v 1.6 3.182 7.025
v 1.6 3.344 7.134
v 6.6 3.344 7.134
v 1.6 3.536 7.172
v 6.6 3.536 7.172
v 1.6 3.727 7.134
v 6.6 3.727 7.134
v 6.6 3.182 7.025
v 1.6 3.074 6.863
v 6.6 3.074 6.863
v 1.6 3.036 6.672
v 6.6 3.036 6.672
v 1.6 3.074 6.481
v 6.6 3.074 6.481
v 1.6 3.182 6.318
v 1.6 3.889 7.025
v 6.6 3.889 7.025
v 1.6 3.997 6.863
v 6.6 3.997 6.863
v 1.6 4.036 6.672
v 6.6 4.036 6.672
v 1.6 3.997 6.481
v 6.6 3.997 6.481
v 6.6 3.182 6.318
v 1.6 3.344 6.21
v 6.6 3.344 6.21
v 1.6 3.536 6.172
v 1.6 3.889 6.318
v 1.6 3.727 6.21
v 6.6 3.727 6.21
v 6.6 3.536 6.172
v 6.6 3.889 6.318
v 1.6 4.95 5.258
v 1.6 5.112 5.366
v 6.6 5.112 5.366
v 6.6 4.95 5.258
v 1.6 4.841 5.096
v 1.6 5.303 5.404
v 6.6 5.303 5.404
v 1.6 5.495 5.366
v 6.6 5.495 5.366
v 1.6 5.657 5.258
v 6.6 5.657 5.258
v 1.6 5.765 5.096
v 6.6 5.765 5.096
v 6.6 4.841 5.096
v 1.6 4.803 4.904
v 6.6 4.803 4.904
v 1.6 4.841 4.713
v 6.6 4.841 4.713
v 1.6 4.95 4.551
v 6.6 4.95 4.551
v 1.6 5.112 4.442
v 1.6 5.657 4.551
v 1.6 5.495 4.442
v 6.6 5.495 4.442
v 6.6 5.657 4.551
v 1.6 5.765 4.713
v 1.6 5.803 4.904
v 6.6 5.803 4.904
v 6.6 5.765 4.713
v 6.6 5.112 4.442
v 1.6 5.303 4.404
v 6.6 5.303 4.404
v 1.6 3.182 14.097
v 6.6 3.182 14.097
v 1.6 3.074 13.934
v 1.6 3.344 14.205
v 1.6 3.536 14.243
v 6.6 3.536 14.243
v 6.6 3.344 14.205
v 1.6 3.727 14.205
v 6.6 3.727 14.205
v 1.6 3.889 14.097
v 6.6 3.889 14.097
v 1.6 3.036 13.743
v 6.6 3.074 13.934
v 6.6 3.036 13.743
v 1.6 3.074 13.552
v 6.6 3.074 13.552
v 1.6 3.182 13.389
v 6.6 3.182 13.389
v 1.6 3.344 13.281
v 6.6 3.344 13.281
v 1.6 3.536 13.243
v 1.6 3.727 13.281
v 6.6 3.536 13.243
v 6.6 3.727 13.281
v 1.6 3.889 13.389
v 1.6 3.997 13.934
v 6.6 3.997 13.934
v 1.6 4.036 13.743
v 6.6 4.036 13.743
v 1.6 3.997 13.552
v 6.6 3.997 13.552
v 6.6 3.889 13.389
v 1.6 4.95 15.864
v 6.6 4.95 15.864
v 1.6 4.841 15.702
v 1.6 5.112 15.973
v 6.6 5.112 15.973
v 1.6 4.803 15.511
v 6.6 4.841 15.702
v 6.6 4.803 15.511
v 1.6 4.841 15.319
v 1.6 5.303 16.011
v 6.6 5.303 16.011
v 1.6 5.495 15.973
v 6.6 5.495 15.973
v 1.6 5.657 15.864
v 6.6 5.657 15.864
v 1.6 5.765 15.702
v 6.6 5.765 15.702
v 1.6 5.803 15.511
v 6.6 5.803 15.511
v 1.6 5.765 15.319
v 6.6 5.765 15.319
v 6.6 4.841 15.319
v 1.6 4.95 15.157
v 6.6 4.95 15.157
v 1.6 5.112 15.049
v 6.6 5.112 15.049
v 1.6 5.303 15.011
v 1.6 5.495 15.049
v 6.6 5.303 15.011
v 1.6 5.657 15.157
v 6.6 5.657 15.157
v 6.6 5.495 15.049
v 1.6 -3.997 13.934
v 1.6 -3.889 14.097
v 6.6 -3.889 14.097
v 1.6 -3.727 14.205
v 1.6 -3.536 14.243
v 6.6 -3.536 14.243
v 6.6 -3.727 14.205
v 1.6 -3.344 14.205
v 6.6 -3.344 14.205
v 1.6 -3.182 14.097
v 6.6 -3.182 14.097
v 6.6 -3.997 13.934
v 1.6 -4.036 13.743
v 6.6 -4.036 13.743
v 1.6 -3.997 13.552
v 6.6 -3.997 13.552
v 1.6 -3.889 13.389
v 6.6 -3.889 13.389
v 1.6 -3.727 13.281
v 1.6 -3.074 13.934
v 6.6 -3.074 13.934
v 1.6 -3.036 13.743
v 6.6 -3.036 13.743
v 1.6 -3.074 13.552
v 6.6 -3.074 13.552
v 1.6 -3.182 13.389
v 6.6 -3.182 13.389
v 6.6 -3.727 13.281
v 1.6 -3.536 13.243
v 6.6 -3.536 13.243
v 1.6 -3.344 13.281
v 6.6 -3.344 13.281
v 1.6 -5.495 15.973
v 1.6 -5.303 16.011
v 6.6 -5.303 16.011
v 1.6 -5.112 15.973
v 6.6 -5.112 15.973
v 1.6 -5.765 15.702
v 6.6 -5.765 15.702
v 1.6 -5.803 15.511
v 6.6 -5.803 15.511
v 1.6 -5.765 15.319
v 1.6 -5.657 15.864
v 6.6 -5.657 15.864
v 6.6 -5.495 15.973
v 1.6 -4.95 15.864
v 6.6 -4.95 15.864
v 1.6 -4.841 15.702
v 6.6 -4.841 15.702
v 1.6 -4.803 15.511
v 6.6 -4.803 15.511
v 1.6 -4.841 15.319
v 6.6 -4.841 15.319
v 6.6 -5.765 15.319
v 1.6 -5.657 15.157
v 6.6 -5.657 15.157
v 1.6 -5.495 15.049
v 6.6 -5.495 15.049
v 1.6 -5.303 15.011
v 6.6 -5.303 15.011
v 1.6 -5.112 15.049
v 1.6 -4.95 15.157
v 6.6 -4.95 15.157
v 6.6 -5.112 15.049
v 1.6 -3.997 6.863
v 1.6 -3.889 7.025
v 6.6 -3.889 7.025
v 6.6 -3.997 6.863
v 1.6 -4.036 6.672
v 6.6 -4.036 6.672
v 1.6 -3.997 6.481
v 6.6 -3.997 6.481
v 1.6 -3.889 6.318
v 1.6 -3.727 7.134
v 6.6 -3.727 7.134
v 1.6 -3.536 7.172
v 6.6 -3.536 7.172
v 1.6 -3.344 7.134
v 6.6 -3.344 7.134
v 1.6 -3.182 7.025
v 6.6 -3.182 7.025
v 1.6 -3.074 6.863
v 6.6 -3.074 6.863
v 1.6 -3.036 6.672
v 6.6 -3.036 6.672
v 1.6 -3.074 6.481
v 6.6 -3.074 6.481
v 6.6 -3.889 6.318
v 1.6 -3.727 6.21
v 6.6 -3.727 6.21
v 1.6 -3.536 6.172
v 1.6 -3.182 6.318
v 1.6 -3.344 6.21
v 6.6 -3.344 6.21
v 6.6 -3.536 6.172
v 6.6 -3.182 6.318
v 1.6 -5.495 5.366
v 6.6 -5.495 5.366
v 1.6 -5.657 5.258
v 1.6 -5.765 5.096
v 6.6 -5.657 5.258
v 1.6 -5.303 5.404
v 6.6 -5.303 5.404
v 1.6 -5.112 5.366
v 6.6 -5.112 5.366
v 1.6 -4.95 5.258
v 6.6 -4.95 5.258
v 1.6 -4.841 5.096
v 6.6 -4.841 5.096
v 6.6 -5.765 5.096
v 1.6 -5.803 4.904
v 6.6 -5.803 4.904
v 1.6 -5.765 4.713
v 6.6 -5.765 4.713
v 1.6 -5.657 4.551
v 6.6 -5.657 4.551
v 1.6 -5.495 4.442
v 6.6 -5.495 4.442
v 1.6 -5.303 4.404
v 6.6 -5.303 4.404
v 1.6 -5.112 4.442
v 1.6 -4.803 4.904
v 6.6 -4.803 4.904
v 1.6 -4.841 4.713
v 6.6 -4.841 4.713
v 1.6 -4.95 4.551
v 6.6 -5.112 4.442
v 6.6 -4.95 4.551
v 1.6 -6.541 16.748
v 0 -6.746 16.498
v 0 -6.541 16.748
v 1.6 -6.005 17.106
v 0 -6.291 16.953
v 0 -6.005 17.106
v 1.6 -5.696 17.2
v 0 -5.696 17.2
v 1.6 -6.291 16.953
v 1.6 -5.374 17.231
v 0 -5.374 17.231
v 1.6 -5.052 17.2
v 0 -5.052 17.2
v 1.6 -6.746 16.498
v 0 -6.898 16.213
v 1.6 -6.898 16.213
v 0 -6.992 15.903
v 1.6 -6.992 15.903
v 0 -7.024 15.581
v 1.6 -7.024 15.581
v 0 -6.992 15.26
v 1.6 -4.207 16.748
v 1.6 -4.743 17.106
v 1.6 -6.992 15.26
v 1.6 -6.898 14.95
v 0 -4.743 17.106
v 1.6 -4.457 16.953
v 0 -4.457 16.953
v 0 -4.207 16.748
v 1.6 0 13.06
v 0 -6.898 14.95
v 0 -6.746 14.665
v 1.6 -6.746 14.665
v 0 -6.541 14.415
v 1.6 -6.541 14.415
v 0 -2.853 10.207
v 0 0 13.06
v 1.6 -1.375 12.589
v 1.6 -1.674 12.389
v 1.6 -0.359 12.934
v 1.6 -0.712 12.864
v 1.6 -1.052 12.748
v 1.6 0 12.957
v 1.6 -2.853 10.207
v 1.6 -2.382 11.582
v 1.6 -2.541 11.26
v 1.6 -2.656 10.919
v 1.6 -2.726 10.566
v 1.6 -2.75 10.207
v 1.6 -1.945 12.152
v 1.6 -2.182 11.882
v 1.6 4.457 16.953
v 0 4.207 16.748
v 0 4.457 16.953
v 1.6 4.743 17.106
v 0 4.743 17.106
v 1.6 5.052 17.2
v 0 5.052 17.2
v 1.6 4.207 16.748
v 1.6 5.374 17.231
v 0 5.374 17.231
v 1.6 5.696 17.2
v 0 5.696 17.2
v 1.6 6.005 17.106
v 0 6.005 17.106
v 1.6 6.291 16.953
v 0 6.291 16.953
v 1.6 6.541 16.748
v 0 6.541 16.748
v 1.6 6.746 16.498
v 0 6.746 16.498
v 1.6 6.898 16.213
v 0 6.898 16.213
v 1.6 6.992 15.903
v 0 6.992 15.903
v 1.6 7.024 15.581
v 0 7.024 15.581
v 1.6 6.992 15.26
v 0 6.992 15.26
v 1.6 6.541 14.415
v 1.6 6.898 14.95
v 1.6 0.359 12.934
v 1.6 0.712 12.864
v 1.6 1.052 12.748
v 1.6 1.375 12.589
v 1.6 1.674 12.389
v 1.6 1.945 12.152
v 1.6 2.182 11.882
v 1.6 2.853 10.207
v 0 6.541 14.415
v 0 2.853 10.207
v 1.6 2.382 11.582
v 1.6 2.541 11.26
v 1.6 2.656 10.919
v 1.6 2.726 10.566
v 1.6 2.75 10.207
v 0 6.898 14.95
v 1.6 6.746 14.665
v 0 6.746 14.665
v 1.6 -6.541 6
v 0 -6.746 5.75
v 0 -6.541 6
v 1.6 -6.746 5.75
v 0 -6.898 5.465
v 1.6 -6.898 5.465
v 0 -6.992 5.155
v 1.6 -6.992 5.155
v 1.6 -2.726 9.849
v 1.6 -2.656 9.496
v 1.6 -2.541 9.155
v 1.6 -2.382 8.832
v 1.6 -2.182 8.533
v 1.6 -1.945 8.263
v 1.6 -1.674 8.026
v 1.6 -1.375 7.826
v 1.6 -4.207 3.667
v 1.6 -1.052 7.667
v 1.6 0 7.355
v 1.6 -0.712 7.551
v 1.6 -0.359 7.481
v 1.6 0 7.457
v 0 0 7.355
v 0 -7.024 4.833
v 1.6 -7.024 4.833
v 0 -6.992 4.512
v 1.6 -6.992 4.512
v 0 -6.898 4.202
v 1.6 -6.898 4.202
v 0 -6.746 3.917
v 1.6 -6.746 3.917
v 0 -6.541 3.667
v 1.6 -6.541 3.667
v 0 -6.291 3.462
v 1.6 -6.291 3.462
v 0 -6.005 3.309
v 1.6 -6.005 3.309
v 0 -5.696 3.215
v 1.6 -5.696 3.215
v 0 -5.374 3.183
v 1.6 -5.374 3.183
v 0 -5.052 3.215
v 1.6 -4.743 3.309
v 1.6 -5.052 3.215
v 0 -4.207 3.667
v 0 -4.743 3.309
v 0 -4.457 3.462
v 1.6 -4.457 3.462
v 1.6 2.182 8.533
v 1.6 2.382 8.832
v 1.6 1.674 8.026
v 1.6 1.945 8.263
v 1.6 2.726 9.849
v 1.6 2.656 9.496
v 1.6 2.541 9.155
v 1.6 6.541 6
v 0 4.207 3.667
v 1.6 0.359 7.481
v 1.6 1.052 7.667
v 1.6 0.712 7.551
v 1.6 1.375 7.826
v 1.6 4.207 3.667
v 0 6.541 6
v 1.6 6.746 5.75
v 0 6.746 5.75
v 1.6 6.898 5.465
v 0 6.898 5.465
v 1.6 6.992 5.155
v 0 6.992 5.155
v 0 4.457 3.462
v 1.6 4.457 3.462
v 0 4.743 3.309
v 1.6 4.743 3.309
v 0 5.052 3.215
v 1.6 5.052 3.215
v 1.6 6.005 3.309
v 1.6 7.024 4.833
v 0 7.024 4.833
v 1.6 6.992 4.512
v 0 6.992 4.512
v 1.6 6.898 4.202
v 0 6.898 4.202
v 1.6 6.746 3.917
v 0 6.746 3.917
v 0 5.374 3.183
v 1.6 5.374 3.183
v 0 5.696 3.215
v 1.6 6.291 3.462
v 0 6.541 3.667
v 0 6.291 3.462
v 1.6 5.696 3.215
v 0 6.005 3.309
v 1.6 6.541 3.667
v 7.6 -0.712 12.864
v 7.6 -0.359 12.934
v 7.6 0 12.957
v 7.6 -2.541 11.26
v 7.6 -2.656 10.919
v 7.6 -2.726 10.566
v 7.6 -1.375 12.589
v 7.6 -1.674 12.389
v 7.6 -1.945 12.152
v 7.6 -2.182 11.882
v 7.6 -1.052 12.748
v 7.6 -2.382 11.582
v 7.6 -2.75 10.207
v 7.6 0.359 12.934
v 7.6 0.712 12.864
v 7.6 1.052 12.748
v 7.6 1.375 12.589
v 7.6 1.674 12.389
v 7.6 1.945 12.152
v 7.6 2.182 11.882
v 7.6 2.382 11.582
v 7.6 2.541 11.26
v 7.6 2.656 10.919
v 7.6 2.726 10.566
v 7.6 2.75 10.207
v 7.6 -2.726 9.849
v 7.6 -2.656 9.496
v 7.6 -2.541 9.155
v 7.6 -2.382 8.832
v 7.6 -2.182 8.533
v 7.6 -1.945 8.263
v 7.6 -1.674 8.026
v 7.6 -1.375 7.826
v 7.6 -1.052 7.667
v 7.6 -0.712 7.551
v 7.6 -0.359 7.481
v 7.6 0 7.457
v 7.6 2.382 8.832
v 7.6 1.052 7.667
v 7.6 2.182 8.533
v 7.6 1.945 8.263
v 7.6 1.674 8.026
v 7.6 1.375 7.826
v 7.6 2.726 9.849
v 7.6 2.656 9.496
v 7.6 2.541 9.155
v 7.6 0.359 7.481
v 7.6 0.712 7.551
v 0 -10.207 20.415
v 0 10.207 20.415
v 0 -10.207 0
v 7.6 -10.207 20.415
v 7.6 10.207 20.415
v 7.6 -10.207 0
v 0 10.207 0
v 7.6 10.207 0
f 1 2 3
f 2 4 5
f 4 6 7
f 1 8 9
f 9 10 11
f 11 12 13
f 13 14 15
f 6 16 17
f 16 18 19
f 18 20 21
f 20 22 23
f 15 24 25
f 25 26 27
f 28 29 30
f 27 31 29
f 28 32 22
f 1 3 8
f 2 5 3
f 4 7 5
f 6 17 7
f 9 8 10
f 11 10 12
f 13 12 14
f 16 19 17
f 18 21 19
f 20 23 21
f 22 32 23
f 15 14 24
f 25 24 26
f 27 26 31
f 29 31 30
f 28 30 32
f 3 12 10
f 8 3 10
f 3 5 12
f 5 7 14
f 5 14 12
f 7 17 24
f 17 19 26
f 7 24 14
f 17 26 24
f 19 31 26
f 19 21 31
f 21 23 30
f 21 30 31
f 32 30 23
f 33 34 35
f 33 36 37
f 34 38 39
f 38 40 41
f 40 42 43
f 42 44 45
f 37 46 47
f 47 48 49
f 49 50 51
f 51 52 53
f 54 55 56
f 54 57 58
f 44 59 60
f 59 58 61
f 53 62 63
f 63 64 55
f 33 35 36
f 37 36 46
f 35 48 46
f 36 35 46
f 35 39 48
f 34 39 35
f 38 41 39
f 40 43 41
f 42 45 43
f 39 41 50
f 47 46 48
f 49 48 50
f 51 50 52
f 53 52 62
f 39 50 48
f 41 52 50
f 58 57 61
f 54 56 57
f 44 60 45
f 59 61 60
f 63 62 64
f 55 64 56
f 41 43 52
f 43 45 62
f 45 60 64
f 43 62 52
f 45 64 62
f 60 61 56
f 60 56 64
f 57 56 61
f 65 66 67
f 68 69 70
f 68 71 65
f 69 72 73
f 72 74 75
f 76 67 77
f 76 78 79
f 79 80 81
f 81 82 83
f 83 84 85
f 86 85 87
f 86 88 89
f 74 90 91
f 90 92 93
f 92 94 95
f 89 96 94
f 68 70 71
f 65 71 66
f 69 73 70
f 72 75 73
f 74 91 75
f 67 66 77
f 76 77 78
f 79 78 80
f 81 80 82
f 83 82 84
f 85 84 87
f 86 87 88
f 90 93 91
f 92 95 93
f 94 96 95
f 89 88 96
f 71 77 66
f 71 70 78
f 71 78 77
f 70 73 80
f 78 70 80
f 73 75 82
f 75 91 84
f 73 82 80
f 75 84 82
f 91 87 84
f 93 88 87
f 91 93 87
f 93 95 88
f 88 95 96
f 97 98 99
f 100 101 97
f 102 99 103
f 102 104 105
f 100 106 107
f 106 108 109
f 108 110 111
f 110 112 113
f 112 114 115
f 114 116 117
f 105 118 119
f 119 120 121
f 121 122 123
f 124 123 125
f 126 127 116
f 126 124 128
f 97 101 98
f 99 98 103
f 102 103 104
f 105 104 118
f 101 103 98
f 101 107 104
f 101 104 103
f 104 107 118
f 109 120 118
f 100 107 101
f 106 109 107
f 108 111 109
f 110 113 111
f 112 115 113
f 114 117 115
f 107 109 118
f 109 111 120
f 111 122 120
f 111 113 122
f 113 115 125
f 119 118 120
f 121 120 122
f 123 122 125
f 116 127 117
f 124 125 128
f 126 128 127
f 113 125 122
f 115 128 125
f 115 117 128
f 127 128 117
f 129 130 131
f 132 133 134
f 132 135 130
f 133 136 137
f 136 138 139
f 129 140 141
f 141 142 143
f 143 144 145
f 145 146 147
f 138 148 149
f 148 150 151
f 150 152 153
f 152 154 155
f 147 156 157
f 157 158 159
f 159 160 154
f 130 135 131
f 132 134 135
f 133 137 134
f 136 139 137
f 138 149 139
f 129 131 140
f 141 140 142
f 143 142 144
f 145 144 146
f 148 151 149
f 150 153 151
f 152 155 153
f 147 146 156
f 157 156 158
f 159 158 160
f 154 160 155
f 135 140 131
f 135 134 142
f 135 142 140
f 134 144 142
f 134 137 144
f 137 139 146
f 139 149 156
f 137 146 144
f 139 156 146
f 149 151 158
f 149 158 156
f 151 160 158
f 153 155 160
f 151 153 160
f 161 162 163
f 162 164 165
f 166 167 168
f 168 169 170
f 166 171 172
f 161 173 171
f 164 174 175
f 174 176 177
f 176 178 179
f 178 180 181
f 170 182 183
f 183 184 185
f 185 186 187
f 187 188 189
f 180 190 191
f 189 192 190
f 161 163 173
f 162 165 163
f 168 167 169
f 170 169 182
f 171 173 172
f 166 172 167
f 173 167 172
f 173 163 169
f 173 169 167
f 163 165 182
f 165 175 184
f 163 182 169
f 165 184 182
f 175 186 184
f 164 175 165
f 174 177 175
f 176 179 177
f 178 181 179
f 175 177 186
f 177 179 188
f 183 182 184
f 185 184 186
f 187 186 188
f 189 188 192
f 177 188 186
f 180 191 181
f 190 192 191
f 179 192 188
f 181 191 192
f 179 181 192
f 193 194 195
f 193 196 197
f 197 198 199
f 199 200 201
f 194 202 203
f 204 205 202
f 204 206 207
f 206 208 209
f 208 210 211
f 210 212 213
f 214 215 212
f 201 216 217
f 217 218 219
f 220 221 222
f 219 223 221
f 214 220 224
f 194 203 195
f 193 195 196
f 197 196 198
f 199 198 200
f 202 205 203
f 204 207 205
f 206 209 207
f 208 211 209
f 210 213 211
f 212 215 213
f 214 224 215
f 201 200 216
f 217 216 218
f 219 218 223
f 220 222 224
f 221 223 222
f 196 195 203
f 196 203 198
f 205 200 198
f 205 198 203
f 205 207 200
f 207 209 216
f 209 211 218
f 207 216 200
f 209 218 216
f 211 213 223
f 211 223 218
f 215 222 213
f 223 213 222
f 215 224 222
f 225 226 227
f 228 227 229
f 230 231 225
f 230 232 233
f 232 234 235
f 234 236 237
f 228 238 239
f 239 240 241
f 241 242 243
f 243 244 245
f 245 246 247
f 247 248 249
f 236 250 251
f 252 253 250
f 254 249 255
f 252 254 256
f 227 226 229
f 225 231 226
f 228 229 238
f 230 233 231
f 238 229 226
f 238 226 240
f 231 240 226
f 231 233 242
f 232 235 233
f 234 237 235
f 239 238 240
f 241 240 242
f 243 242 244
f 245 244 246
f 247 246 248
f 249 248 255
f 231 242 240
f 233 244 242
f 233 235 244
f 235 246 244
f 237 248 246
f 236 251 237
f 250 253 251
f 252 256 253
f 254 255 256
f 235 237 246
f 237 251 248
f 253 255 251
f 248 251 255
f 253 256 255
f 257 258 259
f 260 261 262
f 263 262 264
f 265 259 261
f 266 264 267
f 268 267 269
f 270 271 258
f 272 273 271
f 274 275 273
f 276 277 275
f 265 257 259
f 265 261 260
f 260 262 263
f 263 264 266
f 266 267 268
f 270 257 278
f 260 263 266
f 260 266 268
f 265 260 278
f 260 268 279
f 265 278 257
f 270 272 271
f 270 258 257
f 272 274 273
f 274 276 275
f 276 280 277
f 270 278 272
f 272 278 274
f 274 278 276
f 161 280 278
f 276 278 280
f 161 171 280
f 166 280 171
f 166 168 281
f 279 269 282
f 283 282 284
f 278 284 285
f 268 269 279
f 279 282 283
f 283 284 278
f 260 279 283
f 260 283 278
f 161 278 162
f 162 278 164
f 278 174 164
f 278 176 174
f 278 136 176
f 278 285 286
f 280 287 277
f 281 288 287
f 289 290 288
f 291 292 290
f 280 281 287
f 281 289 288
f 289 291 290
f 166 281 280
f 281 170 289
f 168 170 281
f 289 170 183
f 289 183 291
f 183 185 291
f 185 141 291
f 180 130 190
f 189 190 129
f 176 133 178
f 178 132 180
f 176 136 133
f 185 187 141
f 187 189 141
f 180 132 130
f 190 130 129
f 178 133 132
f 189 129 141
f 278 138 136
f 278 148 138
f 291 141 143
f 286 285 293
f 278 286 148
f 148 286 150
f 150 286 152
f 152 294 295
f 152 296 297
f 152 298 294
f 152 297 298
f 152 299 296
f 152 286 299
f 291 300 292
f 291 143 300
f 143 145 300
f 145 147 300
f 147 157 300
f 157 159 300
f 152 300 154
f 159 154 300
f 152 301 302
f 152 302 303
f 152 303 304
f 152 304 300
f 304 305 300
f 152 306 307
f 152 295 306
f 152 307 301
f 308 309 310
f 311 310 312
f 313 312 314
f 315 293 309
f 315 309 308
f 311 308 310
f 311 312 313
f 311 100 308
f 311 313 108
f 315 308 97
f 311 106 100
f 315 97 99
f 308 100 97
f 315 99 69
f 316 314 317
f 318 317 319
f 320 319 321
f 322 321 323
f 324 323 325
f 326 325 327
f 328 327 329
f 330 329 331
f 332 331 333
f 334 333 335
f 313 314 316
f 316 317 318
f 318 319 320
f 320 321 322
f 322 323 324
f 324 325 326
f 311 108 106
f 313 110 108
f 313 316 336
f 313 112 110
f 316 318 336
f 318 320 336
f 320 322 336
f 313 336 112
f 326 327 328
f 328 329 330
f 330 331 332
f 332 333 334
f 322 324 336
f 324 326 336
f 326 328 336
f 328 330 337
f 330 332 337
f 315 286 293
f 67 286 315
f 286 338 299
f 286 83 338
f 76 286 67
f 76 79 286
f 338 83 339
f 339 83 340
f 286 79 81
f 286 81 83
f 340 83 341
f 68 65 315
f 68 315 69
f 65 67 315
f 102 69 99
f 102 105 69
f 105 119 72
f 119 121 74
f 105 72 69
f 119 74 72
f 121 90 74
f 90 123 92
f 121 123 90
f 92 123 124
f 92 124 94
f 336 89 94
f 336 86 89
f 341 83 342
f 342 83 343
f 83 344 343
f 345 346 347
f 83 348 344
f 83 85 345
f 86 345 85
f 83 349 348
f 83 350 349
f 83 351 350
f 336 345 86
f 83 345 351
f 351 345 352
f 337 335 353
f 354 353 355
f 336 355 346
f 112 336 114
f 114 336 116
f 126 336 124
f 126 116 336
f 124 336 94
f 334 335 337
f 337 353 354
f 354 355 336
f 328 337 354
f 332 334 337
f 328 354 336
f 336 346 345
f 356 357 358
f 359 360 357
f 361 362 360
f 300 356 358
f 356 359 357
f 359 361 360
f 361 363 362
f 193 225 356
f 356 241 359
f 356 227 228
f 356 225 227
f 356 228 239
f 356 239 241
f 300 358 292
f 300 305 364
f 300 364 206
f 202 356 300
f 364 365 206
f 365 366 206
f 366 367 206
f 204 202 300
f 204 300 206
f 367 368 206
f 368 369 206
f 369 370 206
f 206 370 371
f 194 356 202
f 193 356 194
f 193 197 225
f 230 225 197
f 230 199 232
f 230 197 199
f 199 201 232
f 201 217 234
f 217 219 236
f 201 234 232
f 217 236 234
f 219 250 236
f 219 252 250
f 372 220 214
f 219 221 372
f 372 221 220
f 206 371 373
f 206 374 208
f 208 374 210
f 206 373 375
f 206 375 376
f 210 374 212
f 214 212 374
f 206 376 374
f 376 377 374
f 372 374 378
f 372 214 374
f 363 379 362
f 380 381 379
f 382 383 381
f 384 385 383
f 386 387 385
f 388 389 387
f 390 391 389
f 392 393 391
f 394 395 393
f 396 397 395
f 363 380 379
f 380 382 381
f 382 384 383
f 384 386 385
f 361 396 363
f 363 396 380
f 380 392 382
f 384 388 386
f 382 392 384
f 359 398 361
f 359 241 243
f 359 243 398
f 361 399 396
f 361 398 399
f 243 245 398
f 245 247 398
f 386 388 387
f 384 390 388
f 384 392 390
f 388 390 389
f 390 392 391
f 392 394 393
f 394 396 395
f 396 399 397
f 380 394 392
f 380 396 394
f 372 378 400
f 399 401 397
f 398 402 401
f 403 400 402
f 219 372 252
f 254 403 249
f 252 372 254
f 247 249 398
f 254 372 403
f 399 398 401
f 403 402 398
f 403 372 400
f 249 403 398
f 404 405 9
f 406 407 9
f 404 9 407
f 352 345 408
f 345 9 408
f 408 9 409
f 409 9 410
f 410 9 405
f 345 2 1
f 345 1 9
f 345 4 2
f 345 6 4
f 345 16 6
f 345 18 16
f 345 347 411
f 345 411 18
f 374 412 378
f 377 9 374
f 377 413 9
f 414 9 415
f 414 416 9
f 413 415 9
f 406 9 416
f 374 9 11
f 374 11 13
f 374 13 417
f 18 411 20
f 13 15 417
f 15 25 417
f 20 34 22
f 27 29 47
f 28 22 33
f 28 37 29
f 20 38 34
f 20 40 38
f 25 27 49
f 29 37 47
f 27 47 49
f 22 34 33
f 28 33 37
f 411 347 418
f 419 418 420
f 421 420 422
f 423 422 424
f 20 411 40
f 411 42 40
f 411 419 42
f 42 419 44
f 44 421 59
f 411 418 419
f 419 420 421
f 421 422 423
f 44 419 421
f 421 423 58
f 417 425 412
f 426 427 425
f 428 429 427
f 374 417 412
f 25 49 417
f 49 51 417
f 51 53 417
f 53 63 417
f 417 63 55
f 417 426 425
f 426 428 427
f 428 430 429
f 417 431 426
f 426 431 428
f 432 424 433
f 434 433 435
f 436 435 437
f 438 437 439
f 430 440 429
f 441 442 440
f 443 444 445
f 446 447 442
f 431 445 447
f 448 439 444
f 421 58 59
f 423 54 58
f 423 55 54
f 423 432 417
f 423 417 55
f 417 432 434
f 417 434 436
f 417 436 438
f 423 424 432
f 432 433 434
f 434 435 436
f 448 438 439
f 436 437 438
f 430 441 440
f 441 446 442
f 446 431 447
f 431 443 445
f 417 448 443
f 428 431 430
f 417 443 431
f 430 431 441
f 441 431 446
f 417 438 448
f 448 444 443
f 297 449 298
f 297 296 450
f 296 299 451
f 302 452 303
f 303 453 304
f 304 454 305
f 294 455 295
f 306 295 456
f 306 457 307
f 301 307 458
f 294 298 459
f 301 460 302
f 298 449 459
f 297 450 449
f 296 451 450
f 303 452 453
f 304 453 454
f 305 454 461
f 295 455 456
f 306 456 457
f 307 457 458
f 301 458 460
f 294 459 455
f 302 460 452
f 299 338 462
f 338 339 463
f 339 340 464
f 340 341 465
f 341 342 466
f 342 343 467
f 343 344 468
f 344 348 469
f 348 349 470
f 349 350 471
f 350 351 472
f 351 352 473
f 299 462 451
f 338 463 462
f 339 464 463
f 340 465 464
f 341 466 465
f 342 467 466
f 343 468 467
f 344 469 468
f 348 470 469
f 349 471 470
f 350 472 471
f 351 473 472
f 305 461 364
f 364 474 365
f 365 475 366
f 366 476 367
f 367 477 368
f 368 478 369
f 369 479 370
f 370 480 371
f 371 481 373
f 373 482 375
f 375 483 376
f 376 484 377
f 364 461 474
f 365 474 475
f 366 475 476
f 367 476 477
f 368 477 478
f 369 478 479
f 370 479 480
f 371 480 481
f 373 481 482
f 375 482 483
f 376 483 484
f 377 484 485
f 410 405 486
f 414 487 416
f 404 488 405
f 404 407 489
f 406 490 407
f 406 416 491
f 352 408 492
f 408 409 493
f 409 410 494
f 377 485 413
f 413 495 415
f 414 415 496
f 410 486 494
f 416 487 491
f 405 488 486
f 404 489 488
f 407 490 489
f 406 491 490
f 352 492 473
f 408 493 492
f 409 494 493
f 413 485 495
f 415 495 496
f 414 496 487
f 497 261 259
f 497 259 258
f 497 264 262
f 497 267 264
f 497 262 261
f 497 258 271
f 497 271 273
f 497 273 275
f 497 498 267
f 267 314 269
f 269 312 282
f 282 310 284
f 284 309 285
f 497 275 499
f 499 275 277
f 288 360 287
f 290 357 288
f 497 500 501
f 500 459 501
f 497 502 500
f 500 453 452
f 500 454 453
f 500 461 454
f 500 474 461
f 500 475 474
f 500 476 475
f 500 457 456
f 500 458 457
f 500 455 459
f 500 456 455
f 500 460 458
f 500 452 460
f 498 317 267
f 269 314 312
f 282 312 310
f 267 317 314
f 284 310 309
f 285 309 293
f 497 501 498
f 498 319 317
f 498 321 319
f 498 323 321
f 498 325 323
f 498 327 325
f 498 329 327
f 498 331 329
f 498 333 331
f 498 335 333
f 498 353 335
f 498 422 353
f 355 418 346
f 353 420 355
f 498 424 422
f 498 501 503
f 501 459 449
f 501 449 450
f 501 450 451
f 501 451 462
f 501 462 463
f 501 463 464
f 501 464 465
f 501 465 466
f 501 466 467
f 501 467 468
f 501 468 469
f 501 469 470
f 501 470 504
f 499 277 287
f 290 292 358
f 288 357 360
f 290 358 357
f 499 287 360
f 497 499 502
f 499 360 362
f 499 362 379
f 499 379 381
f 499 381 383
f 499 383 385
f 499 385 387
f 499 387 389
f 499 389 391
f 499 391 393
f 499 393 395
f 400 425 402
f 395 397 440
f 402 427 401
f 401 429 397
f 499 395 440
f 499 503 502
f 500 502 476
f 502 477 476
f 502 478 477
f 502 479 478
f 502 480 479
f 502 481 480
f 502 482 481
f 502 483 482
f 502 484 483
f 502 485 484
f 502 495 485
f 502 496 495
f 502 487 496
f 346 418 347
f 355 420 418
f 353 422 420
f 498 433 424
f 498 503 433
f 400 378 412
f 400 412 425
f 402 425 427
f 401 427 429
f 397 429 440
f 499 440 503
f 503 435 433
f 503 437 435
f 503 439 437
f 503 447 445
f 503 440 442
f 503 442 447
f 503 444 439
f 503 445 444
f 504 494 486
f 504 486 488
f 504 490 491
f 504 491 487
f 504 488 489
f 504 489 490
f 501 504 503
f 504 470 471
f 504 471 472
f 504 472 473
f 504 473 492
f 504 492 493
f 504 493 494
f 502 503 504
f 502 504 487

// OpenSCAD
// file: horn_mount.scad
// Mount for the servo's cross horn (the X-shaped arm that comes with the servo).
//
// The horn sits in an X-shaped recess so it can't twist, with a 5.5 mm hole
// in the middle for the horn's hub and the center screw. Small pilot holes
// line up with the holes in the horn's arms, so tiny screws through the horn
// hold the part on.
//
// Fit it once with HornMountTest.stl. If the horn doesn't fit, measure it and
// change the sizes below; every part that includes this file updates.

// ── Horn sizes (mm) ────────────────────────────────────────────────────────
horn_reach    = 9;      // center to the tip of one arm
horn_root_w   = 3.8;    // arm width at the hub
horn_tip_w    = 2.8;    // arm width at the tip
horn_t        = 1.6;    // arm thickness = recess depth
horn_clear    = 0.25;   // gap around the horn
horn_angle    = 45;     // turn of the X (45 = arms point diagonally)
hub_hole_d    = 5.5;    // hole for the horn's hub and the center screw
horn_holes    = [5, 7.5];  // pilot holes: distance from the center along each arm
horn_pilot_d  = 1.0;    // pilot for the horn's small screws
horn_pilot_depth = 5;

// How far the recess reaches along x or y from the center (arms at 45 deg)
horn_extent = (horn_reach + horn_clear) * cos(45) + (horn_tip_w / 2 + horn_clear) * sin(45);

// 2D X shape, centered
module horn_x_2d() {
    rotate(horn_angle)
        for (a = [0, 90, 180, 270]) rotate(a)
            hull() {
                circle(d = horn_root_w + 2 * horn_clear, $fn = 32);
                translate([horn_reach - horn_tip_w / 2, 0])
                    circle(d = horn_tip_w + 2 * horn_clear, $fn = 32);
            }
}

// Cut-out for the horn. The mounting face is at z = 0, material is above it
// (+z). The hub hole runs up hub_len.
module horn_mount_cut(hub_len) {
    translate([0, 0, -1]) linear_extrude(horn_t + 1) horn_x_2d();
    translate([0, 0, -1]) cylinder(d = hub_hole_d, h = hub_len + 1, $fn = 48);
    rotate(horn_angle)
        for (a = [0, 90, 180, 270], r = horn_holes) rotate(a)
            translate([r, 0, -1]) cylinder(d = horn_pilot_d, h = horn_t + horn_pilot_depth + 1, $fn = 16);
}
// main file
// Test block for the cross-horn mount (horn_mount.scad).
//
// Same recess, hub hole and pilot holes as under the head post, printed the
// same way (recess face standing upright), so the fit matches the head.
// Check that the horn drops in without forcing and doesn't twist, and that
// the pilot holes line up with the holes in the horn's arms. If not, measure
// the horn and change the sizes in horn_mount.scad.
//
// Print as exported. No supports needed.

include <horn_mount.scad>

block   = 2 * (horn_extent + 2.5);   // square block around the recess
block_t = horn_t + horn_pilot_depth + 1;

// Build in the head's frame (mount face at z = 0), then turn it the way the
// head prints (rotate [0, 90, 0]) and lift it onto the bed.
translate([0, 0, block / 2])
    rotate([0, 90, 0])
        difference() {
            translate([-block / 2, -block / 2, 0]) cube([block, block, block_t]);
            horn_mount_cut(block_t + 1);
        }
